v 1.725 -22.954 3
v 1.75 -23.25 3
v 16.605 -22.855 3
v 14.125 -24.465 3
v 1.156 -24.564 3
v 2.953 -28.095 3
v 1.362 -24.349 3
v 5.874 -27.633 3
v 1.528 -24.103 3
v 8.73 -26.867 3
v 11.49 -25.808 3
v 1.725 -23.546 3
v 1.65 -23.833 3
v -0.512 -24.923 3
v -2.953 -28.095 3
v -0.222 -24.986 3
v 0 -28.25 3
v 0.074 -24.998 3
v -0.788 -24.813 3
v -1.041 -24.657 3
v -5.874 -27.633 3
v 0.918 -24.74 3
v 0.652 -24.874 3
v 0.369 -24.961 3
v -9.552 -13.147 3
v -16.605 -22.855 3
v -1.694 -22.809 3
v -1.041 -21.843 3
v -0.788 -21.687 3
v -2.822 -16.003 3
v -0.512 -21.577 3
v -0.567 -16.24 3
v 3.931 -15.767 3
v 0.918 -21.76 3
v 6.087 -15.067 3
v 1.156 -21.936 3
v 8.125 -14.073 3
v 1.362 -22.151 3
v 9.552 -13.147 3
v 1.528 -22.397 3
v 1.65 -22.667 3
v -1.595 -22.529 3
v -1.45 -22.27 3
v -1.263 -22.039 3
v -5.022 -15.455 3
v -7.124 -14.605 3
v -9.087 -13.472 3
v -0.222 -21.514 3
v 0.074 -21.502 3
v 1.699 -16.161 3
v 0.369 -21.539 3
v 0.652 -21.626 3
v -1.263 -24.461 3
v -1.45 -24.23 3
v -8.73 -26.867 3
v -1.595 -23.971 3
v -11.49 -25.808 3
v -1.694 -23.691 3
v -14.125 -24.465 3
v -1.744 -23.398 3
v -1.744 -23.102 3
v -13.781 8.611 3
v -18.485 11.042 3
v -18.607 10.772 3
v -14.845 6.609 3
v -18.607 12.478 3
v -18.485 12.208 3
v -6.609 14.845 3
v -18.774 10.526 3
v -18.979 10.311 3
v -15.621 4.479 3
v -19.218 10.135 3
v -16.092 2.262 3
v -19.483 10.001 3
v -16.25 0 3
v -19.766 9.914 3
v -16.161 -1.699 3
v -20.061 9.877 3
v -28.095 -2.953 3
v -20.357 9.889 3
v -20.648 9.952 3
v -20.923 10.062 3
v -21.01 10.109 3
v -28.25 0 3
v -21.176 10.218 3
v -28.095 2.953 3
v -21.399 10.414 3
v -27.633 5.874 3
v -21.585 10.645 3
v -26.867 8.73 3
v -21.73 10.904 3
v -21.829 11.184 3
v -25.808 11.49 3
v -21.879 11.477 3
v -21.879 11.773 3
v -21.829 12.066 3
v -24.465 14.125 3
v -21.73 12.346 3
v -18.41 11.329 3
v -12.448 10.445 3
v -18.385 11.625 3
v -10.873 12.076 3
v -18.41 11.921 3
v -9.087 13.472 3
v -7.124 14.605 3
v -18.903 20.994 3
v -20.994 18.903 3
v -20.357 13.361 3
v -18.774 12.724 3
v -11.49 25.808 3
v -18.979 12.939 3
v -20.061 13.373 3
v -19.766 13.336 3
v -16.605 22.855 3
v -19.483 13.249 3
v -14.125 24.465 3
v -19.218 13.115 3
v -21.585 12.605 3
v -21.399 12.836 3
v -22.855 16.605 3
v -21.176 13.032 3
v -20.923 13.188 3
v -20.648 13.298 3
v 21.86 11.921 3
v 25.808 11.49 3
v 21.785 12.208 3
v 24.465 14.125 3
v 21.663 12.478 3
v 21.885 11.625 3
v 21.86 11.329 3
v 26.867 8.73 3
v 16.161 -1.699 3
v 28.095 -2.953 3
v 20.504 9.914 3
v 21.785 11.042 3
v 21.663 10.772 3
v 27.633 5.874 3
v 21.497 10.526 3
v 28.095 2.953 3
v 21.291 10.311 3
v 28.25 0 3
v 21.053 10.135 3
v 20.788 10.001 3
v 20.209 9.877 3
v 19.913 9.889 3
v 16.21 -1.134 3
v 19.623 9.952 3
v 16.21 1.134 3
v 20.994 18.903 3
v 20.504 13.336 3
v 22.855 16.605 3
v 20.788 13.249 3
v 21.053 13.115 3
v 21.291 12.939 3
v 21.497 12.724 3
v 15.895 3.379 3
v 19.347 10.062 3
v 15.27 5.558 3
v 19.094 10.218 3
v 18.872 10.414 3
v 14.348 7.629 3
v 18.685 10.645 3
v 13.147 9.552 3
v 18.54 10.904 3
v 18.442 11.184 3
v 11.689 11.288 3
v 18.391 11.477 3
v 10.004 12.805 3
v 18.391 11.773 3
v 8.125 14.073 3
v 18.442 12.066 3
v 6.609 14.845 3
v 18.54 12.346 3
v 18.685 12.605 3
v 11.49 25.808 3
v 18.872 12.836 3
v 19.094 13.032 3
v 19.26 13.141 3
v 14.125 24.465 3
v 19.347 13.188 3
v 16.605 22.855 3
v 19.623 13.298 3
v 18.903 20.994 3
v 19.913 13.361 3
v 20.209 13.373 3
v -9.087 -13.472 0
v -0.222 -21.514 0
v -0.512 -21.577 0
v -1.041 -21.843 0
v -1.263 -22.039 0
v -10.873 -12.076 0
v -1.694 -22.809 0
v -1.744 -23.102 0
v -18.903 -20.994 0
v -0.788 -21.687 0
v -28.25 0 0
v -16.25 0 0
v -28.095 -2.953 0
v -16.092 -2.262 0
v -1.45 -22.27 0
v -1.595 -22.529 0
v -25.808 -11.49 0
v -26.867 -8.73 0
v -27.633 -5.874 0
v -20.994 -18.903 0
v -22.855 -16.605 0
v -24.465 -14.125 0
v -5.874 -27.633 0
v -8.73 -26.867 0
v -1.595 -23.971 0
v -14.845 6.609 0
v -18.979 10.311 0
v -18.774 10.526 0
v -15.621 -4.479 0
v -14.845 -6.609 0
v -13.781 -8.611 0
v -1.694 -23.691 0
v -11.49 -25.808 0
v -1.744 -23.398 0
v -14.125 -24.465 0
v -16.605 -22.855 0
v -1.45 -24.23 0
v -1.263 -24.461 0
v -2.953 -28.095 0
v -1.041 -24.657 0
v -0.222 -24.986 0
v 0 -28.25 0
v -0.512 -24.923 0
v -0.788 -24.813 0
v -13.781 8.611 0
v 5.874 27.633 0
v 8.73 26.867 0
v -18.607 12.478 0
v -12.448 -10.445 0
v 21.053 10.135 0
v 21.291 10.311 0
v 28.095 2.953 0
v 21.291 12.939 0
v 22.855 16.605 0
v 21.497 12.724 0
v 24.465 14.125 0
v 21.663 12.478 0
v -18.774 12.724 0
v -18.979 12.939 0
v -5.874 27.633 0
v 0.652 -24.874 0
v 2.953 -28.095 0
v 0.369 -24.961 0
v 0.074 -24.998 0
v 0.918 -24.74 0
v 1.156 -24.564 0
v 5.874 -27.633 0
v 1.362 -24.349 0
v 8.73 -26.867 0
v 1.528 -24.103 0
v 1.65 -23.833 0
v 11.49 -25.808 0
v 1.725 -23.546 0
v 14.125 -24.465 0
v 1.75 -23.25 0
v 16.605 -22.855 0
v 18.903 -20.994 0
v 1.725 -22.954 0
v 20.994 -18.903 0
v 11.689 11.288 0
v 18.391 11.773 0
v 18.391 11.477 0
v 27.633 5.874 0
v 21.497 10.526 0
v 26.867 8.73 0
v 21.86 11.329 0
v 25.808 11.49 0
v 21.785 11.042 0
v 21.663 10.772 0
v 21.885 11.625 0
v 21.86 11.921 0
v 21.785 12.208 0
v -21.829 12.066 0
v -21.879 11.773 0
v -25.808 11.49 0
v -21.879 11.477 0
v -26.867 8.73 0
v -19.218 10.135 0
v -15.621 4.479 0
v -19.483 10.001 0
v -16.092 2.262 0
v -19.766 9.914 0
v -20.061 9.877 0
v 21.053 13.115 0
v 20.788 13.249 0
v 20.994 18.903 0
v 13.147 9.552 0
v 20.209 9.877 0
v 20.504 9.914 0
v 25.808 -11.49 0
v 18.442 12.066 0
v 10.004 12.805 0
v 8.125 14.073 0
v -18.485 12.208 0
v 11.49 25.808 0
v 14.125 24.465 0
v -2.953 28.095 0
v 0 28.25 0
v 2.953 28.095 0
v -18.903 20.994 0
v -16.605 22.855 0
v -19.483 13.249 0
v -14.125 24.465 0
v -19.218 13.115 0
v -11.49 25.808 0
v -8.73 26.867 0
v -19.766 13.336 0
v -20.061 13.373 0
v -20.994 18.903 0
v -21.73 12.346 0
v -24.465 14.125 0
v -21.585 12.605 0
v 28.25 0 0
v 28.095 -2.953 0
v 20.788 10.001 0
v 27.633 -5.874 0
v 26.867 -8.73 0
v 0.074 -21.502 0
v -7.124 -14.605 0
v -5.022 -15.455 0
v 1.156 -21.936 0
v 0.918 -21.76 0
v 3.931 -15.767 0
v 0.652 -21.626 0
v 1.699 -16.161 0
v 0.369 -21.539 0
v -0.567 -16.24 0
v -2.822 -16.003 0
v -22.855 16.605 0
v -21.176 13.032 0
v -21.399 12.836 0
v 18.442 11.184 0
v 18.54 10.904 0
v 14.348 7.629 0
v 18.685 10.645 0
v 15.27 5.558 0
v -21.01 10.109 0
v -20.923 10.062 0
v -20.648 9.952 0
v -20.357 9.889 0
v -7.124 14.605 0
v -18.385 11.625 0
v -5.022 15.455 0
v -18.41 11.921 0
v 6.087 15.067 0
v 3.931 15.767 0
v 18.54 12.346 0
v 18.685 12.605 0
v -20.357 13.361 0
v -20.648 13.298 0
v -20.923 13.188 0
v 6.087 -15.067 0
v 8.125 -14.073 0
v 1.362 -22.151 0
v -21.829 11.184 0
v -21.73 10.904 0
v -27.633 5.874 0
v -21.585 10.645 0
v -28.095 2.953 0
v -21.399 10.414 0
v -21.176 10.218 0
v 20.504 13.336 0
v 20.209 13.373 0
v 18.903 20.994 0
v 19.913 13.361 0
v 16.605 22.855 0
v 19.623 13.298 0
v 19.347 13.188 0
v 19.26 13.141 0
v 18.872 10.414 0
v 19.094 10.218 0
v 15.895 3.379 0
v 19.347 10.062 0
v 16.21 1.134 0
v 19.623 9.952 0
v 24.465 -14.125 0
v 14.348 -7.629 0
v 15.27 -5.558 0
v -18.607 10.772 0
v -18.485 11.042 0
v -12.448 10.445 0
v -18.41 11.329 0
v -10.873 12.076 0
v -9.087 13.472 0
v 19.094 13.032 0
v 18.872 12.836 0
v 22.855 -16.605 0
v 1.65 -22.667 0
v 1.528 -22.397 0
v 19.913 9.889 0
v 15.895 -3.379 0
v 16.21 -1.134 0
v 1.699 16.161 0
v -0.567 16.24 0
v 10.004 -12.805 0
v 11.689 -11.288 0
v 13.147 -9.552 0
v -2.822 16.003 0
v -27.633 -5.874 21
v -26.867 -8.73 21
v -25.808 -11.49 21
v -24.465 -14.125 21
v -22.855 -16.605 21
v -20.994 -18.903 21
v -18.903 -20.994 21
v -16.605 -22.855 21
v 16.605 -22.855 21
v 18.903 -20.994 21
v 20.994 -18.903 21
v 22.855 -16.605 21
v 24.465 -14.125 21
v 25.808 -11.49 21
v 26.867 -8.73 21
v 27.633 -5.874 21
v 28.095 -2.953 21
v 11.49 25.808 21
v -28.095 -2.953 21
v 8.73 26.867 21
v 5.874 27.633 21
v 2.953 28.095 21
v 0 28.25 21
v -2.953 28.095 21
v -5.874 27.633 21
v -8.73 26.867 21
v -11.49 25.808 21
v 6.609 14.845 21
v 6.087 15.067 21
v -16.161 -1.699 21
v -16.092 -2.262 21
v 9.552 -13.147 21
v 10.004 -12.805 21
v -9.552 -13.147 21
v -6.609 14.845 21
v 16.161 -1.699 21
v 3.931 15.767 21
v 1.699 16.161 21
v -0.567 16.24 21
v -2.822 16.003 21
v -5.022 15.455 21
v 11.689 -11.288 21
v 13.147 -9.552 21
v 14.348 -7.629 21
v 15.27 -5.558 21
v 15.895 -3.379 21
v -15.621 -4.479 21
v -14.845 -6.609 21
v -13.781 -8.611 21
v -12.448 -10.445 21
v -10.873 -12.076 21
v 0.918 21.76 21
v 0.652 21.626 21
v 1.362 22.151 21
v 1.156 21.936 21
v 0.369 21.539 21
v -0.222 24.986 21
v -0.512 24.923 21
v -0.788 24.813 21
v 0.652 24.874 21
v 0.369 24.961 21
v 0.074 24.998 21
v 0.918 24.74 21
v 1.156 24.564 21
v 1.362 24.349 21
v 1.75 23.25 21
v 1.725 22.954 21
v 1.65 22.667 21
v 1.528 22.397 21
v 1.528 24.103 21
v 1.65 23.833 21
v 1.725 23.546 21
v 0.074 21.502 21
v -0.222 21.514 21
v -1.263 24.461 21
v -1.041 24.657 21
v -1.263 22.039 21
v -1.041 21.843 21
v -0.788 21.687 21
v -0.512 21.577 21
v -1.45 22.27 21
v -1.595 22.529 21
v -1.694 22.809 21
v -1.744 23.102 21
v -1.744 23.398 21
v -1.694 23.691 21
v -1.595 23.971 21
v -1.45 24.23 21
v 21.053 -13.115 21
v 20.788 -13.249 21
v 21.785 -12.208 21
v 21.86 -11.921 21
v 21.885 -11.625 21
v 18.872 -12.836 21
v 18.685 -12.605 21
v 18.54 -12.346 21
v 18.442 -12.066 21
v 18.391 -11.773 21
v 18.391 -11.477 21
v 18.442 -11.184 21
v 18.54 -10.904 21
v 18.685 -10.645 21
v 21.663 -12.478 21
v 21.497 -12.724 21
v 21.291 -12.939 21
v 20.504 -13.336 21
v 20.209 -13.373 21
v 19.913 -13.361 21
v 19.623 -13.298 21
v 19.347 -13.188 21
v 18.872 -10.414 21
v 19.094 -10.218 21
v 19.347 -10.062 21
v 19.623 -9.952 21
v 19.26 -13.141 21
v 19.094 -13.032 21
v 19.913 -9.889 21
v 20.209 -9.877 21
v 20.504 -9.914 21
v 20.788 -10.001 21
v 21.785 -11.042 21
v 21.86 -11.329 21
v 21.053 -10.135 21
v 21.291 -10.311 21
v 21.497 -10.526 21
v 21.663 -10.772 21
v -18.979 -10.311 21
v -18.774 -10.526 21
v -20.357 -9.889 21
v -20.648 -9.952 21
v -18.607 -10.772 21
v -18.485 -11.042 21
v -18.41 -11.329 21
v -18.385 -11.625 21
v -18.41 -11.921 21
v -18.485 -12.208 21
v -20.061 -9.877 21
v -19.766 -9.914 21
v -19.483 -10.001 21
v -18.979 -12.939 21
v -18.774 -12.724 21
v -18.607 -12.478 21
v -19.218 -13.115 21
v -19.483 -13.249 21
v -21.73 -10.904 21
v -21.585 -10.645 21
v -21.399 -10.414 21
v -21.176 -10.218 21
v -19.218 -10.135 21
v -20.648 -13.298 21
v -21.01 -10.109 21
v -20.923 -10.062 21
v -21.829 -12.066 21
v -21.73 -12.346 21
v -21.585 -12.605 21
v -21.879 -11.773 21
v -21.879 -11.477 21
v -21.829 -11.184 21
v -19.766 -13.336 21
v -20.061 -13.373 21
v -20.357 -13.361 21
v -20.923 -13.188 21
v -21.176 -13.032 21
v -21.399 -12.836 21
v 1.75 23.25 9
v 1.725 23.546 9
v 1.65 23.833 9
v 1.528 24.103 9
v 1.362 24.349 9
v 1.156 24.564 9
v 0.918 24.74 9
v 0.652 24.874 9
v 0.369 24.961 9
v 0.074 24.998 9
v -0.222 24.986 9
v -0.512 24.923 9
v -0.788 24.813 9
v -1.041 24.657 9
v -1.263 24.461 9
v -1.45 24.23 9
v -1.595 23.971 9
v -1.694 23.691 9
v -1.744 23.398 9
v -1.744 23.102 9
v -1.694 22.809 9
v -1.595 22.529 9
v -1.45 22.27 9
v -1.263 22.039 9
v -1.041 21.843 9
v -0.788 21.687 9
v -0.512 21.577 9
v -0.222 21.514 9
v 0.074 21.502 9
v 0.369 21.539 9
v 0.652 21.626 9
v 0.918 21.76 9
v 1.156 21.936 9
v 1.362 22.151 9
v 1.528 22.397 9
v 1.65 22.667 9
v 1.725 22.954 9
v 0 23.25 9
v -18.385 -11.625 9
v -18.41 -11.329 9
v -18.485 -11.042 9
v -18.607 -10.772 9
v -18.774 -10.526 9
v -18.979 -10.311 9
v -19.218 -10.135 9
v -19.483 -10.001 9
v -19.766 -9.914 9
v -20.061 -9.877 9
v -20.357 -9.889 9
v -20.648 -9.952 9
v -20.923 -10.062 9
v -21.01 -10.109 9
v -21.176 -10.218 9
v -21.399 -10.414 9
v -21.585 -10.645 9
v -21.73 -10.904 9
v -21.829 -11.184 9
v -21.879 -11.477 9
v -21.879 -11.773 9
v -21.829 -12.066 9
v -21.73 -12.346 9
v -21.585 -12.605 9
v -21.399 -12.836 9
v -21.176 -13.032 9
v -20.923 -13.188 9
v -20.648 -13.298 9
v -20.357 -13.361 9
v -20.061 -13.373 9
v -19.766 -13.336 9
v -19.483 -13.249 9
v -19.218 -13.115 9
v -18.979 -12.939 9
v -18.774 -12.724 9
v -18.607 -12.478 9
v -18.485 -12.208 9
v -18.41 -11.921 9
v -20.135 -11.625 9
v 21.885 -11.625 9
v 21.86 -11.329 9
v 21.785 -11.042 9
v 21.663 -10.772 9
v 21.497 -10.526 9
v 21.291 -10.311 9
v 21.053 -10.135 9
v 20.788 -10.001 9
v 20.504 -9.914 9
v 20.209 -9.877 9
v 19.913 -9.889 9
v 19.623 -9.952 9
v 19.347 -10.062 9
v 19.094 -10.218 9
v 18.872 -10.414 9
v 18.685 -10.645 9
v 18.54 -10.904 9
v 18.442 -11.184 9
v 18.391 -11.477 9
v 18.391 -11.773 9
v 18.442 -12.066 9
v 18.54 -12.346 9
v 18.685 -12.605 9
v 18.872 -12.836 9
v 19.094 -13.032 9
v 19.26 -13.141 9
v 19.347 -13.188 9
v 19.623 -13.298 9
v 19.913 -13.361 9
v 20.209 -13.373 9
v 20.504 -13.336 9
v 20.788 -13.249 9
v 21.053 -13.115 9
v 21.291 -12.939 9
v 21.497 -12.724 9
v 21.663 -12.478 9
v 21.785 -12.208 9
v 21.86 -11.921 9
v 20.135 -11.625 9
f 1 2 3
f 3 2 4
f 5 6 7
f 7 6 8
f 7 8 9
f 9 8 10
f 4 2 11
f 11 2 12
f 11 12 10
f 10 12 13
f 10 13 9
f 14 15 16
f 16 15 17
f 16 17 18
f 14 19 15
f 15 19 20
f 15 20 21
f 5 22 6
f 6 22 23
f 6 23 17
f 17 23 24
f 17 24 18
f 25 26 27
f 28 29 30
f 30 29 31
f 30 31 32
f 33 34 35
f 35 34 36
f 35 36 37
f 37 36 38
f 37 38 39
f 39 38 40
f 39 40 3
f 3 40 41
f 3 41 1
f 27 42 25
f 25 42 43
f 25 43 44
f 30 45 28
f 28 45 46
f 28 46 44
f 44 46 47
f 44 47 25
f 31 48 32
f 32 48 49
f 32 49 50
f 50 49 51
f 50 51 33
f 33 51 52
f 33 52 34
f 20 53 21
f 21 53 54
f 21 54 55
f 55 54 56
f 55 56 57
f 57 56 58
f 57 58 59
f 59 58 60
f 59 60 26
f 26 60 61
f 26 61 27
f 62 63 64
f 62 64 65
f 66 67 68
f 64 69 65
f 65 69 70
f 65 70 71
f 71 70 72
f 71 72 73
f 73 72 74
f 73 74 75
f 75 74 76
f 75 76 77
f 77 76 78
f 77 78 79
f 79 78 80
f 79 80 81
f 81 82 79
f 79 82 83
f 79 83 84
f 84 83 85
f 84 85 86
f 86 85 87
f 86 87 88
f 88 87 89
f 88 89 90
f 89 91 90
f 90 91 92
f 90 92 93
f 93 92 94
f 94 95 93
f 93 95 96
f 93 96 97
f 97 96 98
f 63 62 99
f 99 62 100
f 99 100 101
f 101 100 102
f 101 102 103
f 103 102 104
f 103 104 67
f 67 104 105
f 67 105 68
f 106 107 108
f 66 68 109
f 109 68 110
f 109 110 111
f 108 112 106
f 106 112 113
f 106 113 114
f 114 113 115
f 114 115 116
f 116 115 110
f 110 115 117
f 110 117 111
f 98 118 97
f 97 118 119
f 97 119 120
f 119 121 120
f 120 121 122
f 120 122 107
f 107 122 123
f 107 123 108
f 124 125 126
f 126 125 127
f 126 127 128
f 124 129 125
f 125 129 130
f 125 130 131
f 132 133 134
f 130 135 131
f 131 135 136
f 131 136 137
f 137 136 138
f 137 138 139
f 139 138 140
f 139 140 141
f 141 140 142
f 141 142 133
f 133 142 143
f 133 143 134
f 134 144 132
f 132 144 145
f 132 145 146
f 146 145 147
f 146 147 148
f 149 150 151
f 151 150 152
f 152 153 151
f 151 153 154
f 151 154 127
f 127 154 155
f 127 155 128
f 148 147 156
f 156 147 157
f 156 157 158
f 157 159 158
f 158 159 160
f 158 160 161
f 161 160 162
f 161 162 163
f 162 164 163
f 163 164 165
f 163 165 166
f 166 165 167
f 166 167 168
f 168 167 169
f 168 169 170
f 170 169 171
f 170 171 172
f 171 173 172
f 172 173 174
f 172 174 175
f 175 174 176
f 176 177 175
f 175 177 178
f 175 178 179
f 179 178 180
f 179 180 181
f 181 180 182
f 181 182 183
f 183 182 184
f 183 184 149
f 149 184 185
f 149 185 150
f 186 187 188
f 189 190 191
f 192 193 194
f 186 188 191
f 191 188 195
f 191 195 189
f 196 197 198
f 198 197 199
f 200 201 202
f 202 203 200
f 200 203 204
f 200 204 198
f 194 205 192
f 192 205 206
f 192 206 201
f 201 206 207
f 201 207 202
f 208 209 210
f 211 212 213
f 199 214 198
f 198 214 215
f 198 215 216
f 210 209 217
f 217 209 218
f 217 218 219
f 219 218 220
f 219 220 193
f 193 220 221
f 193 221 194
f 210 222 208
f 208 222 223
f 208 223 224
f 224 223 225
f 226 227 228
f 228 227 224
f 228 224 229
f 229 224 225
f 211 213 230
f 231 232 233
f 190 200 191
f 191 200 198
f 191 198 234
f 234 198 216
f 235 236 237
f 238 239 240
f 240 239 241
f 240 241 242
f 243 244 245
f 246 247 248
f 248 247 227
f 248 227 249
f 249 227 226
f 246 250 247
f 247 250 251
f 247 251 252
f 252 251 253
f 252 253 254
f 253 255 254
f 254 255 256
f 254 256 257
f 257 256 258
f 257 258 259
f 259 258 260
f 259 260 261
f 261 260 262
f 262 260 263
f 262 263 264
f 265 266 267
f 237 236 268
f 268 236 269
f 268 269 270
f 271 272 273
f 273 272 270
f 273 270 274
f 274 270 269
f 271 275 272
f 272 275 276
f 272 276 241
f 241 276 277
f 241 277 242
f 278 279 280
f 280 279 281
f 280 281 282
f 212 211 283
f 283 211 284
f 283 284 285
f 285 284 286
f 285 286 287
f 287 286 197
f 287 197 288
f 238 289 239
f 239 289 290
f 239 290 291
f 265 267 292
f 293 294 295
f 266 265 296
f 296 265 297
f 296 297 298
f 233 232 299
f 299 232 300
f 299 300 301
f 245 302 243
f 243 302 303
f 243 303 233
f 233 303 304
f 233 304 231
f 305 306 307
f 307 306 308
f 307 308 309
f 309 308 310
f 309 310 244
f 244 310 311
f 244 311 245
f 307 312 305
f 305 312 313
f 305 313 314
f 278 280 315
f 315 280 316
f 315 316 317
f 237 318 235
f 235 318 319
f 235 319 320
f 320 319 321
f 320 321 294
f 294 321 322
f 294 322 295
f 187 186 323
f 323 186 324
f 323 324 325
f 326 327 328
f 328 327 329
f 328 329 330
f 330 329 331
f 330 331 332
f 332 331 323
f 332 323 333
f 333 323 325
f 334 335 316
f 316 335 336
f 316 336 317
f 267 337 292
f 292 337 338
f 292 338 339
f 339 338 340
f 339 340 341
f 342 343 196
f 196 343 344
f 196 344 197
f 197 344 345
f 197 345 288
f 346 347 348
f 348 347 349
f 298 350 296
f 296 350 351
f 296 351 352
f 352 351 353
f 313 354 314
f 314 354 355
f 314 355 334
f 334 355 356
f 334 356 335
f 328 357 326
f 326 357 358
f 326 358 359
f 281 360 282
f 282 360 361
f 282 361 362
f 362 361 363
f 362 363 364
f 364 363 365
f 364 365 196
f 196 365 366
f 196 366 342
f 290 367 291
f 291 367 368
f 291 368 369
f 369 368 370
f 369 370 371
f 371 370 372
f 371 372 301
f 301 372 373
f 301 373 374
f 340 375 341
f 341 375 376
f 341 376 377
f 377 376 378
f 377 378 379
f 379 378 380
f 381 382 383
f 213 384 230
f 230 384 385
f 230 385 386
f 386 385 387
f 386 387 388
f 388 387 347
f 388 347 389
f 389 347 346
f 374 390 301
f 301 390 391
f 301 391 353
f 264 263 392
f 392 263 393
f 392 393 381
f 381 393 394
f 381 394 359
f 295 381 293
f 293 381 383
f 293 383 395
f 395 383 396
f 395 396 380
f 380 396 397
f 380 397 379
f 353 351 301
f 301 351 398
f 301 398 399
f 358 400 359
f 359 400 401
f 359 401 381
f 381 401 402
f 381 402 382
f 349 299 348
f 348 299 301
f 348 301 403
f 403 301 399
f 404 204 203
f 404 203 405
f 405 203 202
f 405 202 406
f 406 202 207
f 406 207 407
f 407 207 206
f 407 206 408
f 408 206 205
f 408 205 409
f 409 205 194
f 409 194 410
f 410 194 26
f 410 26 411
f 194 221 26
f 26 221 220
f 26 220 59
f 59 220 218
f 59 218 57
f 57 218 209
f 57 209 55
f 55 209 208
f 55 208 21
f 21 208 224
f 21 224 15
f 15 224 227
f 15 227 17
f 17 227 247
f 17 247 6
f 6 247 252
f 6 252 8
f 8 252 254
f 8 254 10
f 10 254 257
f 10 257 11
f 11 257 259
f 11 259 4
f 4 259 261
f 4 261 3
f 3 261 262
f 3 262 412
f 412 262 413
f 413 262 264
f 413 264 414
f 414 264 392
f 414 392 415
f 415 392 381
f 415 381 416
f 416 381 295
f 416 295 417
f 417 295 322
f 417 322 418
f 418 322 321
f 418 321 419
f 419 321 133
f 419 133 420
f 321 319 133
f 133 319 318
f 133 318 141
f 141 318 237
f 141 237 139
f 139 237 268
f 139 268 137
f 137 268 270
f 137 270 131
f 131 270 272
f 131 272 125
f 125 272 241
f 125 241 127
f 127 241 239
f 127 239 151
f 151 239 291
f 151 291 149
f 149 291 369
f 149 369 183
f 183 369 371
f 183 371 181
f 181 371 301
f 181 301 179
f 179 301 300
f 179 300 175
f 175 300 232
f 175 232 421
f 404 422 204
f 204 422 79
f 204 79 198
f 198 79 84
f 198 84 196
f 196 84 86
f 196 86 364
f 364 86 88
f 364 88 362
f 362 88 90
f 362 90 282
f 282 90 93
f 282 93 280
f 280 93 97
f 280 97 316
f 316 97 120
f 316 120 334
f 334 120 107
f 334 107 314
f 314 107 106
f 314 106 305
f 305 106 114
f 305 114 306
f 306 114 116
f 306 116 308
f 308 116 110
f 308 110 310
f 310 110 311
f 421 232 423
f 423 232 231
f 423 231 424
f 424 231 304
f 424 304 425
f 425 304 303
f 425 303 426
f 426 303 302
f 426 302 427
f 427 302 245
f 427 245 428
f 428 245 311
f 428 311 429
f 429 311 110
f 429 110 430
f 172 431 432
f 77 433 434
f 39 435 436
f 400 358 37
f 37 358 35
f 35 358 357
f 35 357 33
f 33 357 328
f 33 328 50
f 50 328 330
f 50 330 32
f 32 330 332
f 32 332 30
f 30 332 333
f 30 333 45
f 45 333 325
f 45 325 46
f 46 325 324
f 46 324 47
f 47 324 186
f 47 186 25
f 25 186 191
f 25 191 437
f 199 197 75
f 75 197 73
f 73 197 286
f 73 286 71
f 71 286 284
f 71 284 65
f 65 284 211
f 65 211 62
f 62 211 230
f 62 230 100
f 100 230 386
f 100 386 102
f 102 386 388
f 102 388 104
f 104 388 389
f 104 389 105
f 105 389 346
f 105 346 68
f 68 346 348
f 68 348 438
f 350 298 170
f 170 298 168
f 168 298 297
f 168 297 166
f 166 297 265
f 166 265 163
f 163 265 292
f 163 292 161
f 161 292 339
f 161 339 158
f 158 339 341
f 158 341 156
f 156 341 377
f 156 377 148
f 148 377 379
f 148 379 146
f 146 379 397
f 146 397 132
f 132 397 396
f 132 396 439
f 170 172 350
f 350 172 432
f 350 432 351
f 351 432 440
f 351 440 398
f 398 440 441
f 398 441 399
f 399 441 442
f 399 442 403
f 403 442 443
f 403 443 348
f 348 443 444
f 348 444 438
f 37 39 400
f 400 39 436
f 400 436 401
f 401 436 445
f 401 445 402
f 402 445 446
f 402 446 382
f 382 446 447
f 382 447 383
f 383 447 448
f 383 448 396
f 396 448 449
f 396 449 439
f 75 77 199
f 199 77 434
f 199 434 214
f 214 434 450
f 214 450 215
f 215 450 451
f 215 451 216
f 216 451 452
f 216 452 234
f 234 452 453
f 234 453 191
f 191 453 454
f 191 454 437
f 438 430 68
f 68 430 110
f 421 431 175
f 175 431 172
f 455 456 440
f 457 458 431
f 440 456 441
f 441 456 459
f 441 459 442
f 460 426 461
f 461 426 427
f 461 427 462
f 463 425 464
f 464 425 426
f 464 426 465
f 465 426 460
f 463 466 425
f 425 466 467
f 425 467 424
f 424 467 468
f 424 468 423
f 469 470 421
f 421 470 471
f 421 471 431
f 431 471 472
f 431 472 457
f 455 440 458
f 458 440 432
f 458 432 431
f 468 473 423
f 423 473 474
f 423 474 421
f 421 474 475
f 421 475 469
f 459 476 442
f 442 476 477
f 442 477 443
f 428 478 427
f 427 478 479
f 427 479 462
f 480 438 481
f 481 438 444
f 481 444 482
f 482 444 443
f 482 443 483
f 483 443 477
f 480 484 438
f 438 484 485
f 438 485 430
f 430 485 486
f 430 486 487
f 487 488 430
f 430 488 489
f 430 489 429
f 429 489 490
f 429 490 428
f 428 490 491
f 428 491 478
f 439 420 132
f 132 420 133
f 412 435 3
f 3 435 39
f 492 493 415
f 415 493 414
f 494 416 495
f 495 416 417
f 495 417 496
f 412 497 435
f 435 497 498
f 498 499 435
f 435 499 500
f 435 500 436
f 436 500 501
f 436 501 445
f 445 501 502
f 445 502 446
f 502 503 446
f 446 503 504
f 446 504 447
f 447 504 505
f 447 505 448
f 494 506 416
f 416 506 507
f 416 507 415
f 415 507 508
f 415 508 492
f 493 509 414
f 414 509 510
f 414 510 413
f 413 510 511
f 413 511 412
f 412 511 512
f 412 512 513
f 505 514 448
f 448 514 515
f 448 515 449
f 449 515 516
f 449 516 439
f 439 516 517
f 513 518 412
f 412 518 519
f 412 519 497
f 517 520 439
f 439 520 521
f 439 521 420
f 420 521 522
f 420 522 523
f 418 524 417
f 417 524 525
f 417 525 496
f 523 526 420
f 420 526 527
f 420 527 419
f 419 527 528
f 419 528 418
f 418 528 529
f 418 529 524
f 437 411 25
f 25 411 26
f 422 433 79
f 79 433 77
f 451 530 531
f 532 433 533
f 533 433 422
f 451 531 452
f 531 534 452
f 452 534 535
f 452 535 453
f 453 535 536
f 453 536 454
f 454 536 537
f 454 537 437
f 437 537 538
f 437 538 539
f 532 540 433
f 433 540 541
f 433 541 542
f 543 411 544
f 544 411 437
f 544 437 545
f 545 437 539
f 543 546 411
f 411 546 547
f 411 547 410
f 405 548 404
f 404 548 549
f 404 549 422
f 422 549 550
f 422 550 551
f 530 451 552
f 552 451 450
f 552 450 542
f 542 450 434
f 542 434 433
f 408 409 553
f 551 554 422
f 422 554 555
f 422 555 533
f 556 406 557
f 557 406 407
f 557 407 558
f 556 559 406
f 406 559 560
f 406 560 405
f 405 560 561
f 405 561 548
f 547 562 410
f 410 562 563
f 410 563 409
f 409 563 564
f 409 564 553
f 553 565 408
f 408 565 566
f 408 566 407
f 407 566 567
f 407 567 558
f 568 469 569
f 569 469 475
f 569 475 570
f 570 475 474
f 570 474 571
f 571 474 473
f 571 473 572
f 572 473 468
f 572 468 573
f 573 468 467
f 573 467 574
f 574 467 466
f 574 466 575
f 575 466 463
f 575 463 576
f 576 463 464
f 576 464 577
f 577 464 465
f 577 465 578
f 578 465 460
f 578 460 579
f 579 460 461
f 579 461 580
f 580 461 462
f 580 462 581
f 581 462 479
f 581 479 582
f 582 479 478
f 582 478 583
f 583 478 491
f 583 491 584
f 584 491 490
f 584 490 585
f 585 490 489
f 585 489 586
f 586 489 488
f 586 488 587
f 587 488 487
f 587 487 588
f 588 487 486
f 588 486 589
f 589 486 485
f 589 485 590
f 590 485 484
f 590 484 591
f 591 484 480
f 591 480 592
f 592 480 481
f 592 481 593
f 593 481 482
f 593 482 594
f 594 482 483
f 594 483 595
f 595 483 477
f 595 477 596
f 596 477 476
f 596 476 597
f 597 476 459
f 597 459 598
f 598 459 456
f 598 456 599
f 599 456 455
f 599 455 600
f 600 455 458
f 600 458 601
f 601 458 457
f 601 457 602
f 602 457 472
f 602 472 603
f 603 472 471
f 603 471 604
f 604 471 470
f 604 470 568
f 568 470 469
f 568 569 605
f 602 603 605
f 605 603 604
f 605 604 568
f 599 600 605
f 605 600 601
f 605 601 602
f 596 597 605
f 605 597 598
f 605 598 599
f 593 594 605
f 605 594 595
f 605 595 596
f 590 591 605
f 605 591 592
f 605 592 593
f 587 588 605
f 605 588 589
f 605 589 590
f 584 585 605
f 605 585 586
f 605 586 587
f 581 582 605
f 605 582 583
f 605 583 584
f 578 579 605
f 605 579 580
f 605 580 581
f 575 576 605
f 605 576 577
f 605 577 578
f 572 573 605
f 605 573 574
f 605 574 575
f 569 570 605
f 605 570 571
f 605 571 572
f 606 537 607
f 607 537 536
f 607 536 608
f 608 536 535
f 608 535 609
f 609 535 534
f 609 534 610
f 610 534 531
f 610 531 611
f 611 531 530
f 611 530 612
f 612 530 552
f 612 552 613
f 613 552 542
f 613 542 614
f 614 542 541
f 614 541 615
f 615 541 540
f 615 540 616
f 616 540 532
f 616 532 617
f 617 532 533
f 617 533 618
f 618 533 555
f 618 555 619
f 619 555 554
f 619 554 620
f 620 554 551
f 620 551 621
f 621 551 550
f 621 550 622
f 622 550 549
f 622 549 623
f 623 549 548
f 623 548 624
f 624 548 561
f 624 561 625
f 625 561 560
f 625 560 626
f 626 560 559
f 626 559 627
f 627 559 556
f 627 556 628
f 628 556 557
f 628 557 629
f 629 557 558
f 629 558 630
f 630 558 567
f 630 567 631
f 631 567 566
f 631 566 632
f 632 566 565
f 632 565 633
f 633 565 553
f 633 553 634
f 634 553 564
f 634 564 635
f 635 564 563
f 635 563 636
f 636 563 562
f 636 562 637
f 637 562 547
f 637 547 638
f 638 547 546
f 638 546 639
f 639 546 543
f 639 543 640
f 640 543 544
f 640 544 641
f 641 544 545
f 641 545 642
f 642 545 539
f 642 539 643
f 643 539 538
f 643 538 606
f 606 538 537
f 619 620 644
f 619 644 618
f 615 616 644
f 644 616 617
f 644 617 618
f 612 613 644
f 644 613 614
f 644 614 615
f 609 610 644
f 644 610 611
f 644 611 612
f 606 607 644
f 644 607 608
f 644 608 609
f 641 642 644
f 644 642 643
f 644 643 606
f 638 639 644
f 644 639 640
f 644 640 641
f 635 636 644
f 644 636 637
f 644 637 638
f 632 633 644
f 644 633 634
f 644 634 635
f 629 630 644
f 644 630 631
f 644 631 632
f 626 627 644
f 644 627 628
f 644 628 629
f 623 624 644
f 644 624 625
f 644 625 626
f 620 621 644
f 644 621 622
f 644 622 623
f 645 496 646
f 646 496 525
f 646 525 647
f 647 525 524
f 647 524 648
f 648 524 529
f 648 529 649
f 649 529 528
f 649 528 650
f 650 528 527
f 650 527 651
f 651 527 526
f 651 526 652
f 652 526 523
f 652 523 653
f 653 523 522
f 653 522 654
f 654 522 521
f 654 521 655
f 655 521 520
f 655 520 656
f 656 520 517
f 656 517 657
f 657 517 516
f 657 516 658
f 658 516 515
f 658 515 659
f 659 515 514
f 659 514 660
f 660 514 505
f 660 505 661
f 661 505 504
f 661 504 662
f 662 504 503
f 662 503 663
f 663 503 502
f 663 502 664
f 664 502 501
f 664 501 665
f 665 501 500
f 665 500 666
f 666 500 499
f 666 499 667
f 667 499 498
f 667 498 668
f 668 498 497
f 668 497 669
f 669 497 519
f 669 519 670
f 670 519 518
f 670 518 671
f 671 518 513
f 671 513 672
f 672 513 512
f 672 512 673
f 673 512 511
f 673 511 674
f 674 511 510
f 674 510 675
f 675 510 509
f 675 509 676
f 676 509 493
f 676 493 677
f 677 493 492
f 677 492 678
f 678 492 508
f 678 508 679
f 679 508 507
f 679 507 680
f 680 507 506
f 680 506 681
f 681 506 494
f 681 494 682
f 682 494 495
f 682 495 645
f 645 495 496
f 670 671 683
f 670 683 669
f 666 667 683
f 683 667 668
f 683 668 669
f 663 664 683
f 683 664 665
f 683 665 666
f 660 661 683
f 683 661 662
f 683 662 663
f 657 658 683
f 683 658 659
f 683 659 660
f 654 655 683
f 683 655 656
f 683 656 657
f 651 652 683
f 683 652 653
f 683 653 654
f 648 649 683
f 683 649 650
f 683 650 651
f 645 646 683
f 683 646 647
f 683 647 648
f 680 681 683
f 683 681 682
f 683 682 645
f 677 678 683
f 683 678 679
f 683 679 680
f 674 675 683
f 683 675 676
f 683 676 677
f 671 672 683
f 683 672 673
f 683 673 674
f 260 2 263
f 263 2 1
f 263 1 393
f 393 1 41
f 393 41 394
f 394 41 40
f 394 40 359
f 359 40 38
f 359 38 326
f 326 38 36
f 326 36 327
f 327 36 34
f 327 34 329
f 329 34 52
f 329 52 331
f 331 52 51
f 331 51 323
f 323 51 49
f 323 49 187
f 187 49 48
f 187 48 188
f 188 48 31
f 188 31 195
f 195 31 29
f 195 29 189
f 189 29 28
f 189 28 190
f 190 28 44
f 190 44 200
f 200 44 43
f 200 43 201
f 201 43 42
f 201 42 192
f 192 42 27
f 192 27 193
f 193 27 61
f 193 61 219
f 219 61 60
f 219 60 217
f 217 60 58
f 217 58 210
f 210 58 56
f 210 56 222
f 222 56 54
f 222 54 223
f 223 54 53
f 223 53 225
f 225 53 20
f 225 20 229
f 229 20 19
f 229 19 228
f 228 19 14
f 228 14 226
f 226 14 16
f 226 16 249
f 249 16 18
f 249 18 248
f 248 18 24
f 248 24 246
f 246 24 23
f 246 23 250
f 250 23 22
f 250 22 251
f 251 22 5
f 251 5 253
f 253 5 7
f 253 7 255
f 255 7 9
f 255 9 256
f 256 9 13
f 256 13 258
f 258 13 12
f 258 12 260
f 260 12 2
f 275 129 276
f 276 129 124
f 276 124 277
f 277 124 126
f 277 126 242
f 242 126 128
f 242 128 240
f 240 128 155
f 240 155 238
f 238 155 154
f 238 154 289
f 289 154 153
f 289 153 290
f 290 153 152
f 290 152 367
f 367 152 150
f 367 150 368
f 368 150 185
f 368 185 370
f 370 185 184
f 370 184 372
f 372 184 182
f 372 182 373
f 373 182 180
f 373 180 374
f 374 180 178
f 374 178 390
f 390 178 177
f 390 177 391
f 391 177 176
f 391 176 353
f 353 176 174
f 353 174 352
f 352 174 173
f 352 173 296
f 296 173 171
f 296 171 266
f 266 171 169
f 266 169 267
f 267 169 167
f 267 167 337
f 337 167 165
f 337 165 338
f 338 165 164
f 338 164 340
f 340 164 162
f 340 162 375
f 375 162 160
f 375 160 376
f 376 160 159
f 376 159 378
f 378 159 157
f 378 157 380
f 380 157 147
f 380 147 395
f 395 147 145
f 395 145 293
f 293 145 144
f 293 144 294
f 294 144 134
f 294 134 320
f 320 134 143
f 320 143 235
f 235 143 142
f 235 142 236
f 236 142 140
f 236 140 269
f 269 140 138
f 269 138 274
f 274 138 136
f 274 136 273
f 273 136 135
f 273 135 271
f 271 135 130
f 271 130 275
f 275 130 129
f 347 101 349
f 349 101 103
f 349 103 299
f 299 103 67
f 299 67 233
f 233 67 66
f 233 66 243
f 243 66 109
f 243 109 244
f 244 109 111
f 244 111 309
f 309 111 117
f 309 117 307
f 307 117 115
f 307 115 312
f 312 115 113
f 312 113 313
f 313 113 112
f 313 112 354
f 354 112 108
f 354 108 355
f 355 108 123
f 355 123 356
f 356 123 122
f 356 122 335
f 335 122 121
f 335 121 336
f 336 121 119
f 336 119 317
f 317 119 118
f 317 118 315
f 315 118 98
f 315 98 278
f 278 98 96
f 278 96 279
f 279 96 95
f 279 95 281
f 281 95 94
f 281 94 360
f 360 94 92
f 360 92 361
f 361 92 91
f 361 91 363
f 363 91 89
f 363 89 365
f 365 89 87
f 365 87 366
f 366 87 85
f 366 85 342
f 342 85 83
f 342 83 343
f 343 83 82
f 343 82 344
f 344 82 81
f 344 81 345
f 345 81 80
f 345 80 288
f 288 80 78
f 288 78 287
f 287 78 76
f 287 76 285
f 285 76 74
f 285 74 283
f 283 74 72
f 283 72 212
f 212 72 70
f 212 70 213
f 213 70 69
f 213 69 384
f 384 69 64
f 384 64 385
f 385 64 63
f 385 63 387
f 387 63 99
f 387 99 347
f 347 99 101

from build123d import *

# Parameters (mm, degrees)
SKETCH2_W           = 3
SKETCH2_H           = 12
BOSS_EXTRUDE1_DEPTH = 18
CIRPATTERN1_COUNT   = 3
SKETCH4_R           = 1.75
CUT_EXTRUDE1_DEPTH  = 12
CIRPATTERN2_COUNT   = 3
SKETCH5_R           = 1.75
CUT_EXTRUDE2_DEPTH  = 44.819230938
CIRPATTERN3_COUNT   = 3


with BuildPart() as part:
    # Sketch2 → Revolve1 (revolve)
    with BuildSketch(Plane(origin=(0, 0, 0), x_dir=(0, 0, -1), z_dir=(1, 0, 0)), mode=Mode.PRIVATE) as revolve1_sk:
        with Locations((-1.5, 22.25)):
            Rectangle(SKETCH2_W, SKETCH2_H)
    revolve(revolve1_sk.sketch.rotate(Axis((0, 0, 0), (0, 0, 1)), 90), axis=Axis((0, 0, 0), (0, 0, 1)))

    # Sketch3 → Boss-Extrude1 (add)
    with BuildSketch(Plane.XY.offset(3)):
        with BuildLine():
            Line((-6.60947045, 14.845113687), (-11.490310167, 25.807659178))
            ThreePointArc((-11.490310167, 25.807659178), (0, 28.25), (11.490310167, 25.807659178))
            Line((11.490310167, 25.807659178), (6.60947045, 14.845113687))
            ThreePointArc((6.60947045, 14.845113687), (0, 16.25), (-6.60947045, 14.845113687))
        make_face()
    boss_extrude1 = extrude(amount=BOSS_EXTRUDE1_DEPTH)

    # CirPattern1: Boss-Extrude1 ×3 about axis
    cirpattern1_axis = Axis((0, 0, 0), (0, 0, 1))
    for i in range(1, CIRPATTERN1_COUNT):
        add(boss_extrude1.rotate(cirpattern1_axis, i * 360 / CIRPATTERN1_COUNT))

    # Sketch4 → Cut-Extrude1 (cut)
    with BuildSketch(Plane.XY.offset(21)):
        with Locations((0, 23.25)):
            Circle(SKETCH4_R)
    cut_extrude1 = extrude(amount=-CUT_EXTRUDE1_DEPTH, mode=Mode.SUBTRACT)

    # CirPattern2: Cut-Extrude1 ×3 about axis
    cirpattern2_axis = Axis((0, 0, 0), (0, 0, 1))
    for i in range(1, CIRPATTERN2_COUNT):
        add(cut_extrude1.rotate(cirpattern2_axis, i * 360 / CIRPATTERN2_COUNT), mode=Mode.SUBTRACT)

    # Sketch5 → Cut-Extrude2 (cut, through all)
    with BuildSketch(Plane.XY.offset(3)):
        with Locations((0, -23.25)):
            Circle(SKETCH5_R)
    cut_extrude2 = extrude(amount=-CUT_EXTRUDE2_DEPTH, mode=Mode.SUBTRACT)

    # CirPattern3: Cut-Extrude2 ×3 about axis
    cirpattern3_axis = Axis((0, 0, 0), (0, 0, 1))
    for i in range(1, CIRPATTERN3_COUNT):
        add(cut_extrude2.rotate(cirpattern3_axis, i * 360 / CIRPATTERN3_COUNT), mode=Mode.SUBTRACT)


solid = part.part
